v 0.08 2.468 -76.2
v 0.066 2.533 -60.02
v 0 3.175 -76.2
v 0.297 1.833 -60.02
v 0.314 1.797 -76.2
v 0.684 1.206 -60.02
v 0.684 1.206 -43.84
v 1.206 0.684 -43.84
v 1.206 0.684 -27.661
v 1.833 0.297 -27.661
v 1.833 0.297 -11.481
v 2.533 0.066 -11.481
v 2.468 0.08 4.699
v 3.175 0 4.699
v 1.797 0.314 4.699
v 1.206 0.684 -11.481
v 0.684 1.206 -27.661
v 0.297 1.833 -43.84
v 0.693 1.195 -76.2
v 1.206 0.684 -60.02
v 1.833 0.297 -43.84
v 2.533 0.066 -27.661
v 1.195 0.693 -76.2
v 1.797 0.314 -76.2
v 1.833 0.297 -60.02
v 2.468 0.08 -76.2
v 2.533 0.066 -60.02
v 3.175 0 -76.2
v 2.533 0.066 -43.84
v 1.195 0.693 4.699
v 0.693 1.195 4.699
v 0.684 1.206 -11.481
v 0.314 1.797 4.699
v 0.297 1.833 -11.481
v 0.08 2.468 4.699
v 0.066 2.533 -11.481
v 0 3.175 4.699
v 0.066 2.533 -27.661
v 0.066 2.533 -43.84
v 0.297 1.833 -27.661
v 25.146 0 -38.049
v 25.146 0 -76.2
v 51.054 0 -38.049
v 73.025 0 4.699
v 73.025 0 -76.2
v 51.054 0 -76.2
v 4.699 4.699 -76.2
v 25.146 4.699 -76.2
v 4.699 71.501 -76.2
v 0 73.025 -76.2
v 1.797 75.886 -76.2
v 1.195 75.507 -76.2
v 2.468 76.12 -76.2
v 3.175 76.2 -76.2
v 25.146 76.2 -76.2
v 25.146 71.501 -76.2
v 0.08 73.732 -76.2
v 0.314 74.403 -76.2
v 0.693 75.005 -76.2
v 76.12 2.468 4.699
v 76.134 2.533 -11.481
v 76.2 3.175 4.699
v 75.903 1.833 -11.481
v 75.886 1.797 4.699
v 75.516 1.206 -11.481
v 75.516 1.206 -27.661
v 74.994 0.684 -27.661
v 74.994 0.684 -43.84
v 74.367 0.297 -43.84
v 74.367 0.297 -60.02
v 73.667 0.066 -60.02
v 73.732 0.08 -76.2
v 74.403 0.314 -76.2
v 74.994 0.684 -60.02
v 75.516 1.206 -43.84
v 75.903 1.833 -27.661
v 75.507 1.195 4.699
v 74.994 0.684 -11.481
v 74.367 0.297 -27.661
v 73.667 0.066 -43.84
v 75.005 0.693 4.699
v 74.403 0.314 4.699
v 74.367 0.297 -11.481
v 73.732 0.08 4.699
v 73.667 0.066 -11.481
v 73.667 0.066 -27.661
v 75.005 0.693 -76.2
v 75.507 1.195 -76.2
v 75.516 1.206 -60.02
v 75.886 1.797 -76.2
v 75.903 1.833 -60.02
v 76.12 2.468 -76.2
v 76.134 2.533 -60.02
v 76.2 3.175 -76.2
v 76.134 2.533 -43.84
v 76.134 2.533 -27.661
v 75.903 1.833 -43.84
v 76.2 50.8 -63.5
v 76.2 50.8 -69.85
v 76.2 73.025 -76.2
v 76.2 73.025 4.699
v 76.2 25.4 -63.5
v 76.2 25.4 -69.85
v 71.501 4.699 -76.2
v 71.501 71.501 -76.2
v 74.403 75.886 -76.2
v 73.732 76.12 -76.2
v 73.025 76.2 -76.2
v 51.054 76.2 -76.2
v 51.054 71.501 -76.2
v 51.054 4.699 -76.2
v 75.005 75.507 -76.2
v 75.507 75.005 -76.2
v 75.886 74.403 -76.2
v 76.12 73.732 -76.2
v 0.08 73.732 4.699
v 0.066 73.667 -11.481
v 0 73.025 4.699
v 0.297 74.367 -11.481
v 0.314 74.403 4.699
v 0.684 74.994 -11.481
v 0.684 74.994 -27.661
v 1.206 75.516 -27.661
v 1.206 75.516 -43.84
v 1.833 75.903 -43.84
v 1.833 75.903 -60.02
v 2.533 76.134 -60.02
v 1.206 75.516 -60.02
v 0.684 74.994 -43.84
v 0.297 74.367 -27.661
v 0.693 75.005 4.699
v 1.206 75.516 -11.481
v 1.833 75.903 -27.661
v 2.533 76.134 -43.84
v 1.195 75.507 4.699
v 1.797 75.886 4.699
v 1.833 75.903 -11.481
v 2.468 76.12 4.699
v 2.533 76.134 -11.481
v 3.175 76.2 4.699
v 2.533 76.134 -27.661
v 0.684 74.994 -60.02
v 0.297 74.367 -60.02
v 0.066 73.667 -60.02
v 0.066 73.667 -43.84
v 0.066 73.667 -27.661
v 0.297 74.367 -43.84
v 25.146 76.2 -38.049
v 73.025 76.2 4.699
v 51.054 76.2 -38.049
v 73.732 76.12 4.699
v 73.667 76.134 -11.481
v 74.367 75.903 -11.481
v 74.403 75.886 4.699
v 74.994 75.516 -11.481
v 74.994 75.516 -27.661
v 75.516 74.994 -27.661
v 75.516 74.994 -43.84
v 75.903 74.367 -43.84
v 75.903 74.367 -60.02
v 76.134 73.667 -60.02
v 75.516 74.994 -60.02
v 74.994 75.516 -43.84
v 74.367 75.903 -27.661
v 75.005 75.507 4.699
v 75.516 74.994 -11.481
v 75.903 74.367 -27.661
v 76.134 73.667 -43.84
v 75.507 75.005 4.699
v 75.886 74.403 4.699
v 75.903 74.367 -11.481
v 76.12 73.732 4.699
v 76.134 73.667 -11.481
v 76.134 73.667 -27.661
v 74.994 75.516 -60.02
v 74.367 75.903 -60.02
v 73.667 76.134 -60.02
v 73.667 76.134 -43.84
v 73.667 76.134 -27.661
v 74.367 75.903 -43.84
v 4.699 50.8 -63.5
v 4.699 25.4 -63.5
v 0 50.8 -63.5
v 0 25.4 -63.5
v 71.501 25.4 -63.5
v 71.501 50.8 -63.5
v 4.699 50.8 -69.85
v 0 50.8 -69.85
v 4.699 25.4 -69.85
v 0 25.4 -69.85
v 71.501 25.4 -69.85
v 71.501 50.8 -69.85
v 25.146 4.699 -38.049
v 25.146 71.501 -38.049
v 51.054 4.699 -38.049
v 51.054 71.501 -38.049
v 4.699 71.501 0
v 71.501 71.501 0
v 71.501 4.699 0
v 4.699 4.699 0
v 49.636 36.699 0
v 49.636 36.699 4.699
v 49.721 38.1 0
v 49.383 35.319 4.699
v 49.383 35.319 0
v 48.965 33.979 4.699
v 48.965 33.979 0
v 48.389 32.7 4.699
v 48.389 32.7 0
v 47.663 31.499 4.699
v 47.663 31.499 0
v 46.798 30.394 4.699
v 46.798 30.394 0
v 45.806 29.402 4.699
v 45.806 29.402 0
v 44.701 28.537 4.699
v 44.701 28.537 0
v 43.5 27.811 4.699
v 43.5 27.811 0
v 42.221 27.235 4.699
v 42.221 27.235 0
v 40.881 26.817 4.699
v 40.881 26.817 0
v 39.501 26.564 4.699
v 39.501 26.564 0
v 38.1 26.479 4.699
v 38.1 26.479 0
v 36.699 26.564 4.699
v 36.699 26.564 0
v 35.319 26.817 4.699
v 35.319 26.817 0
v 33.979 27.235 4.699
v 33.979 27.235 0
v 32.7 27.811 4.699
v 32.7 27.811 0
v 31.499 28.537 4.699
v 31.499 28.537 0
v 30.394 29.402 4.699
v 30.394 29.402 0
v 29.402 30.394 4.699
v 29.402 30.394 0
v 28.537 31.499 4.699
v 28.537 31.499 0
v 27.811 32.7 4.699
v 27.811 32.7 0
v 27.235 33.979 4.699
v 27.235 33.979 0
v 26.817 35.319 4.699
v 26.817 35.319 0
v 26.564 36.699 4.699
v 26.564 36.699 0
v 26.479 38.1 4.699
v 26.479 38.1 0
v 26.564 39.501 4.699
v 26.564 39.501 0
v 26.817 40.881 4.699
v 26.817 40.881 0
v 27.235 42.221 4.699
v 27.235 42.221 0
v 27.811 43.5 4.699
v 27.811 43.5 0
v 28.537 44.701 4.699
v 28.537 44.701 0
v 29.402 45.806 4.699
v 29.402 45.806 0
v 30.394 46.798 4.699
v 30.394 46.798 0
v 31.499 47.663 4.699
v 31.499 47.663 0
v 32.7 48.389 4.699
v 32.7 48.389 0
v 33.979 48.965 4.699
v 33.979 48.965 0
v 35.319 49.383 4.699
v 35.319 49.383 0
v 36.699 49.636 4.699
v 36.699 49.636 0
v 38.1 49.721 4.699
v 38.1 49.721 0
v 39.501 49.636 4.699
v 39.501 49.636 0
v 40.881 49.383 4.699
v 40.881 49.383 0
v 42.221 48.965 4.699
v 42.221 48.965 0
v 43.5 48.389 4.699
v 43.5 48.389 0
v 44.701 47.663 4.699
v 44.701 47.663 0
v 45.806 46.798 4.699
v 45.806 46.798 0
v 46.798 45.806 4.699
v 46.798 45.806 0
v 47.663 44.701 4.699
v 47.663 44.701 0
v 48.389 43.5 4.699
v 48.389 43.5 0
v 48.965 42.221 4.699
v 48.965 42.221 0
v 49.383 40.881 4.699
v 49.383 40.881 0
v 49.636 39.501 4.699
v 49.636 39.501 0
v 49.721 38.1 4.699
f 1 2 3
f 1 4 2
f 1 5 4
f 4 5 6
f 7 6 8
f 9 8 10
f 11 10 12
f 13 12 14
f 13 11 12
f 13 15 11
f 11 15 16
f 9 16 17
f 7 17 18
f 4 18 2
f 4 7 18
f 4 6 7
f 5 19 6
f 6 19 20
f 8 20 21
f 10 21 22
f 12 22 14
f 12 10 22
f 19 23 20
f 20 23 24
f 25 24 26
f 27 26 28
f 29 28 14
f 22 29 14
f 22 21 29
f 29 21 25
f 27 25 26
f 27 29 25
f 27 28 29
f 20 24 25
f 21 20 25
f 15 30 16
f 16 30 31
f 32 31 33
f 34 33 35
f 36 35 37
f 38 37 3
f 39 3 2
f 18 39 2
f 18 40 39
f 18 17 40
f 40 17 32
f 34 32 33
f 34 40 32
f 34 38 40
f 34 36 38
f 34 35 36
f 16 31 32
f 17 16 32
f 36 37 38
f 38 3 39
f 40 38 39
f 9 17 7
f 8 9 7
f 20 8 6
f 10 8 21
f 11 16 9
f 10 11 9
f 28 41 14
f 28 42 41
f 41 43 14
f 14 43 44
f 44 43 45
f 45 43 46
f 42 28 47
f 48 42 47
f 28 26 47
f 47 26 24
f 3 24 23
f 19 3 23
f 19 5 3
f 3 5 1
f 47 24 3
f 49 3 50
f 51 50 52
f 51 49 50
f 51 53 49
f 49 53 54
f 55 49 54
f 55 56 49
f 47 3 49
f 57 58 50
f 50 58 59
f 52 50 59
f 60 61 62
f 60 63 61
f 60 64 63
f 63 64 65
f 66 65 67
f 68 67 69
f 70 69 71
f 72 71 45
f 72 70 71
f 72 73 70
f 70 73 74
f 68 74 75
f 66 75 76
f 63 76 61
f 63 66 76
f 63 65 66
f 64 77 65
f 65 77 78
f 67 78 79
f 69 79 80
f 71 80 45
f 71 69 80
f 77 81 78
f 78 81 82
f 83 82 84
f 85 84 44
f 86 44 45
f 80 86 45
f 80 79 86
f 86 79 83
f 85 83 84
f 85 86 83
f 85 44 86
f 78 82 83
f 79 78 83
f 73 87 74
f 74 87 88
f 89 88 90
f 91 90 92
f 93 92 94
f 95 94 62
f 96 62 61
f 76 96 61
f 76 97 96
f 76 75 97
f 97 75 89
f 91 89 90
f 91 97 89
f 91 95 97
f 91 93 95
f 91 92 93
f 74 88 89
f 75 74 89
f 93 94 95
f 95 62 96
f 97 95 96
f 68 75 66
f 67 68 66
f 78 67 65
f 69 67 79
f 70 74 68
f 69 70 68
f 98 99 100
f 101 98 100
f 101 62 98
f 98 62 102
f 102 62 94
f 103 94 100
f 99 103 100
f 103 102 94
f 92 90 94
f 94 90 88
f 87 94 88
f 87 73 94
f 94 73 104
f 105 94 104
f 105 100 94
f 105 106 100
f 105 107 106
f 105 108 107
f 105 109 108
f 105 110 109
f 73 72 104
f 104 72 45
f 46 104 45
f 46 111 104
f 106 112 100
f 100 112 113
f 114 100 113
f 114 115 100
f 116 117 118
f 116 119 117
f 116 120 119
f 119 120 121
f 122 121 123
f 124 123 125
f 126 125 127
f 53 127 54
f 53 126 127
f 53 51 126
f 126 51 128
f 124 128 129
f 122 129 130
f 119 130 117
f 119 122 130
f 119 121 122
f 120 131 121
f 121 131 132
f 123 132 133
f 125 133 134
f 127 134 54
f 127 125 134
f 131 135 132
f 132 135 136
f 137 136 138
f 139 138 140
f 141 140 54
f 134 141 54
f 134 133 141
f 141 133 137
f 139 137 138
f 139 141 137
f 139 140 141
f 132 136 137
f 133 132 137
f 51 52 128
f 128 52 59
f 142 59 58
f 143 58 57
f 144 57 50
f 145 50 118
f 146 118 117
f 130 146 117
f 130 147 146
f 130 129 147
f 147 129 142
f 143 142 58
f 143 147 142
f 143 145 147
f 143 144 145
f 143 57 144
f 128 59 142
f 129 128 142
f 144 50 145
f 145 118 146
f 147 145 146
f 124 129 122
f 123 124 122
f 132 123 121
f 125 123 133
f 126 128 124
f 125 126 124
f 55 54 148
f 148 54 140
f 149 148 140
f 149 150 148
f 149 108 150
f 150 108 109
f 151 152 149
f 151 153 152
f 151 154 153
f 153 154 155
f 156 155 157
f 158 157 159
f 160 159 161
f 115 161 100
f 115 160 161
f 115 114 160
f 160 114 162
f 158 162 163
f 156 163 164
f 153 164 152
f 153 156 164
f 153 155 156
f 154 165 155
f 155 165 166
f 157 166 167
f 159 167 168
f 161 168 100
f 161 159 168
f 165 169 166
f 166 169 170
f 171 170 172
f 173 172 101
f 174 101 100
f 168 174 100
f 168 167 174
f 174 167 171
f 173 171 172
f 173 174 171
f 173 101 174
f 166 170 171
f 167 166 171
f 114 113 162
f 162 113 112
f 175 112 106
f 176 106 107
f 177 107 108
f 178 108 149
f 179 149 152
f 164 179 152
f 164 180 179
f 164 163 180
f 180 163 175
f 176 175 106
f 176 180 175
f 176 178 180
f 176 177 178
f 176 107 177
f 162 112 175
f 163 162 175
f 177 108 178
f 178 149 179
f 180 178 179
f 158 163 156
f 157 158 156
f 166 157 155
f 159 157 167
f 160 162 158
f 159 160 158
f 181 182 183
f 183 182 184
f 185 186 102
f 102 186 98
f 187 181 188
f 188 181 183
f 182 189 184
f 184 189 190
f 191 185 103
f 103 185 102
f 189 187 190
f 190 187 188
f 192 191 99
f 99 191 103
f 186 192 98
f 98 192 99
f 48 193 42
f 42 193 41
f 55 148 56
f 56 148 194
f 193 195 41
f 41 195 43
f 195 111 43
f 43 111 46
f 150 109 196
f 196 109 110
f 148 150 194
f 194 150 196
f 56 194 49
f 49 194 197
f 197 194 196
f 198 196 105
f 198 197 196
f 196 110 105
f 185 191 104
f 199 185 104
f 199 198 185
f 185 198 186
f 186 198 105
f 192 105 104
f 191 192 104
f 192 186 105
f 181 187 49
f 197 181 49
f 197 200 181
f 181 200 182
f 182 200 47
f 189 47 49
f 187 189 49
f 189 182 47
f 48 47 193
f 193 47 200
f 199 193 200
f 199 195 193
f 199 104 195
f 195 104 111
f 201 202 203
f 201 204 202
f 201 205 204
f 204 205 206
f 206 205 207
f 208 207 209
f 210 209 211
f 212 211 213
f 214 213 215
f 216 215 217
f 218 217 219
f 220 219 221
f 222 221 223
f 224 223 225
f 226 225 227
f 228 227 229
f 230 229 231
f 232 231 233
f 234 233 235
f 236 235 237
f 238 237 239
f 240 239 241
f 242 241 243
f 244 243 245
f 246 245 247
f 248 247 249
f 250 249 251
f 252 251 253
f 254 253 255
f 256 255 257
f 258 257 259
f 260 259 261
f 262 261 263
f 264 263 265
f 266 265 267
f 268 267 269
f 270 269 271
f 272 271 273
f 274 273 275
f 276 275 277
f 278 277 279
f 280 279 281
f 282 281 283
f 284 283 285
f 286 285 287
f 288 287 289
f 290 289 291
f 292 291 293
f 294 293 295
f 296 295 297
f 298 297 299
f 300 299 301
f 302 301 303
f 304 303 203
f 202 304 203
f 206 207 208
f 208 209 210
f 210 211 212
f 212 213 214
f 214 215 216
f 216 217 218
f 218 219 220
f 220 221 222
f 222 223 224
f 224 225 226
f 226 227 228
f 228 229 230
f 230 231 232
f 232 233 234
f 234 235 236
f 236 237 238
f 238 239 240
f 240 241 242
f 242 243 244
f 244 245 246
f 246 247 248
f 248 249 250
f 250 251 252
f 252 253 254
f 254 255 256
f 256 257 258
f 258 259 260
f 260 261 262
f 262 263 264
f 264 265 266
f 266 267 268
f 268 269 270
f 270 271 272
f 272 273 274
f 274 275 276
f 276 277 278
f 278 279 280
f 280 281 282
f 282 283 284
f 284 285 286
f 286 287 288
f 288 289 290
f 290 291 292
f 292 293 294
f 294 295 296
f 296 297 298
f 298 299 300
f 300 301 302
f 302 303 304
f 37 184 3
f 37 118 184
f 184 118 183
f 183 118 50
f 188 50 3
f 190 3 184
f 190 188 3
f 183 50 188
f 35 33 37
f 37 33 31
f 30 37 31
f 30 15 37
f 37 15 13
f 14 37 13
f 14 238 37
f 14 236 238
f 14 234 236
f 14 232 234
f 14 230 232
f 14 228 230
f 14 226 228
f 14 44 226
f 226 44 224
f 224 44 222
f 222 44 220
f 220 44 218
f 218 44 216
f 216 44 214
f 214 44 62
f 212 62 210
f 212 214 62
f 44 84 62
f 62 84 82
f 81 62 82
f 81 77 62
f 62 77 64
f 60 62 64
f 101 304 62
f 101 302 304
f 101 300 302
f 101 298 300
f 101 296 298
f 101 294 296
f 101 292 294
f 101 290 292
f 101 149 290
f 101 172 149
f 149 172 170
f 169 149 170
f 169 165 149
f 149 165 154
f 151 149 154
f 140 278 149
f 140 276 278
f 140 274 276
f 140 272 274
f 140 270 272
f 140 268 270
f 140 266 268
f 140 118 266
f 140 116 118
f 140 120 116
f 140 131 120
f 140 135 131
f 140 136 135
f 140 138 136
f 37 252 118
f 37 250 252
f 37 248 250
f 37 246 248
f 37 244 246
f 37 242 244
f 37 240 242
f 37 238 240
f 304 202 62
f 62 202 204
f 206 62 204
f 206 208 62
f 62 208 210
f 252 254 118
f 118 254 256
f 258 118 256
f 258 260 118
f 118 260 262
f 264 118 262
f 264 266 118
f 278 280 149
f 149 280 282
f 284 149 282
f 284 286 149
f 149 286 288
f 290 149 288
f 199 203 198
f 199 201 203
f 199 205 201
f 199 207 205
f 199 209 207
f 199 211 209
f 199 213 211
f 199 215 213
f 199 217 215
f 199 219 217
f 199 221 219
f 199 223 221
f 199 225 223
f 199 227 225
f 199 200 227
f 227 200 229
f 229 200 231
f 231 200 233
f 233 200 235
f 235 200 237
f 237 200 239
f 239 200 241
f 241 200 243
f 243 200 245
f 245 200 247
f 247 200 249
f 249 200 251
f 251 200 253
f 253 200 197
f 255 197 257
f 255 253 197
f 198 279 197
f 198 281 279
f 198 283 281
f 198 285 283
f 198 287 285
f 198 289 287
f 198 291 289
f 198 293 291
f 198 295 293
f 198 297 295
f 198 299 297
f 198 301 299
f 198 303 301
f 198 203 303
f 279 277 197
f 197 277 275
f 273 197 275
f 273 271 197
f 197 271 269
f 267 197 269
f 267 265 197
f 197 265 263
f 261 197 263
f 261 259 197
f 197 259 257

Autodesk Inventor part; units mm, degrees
ref_plane "YZ Plane" through (0, 0, 0) normal (1, 0, 0) x (0, 1, 0)
ref_plane "XZ Plane" through (0, 0, 0) normal (0, 1, 0) x (-1, 0, 0)
ref_plane "XY Plane" through (0, 0, 0) normal (0, 0, 1) x (1, 0, 0)
sketch "Sketch1" plane through (0, 0, 0) normal (0, 0, 1) x (1, 0, 0)
  line L0 (0, 0) -> (76.2, 0)
  line L1 (76.2, 0) -> (76.2, 76.2)
  line L2 (76.2, 76.2) -> (0, 76.2)
  line L3 (0, 76.2) -> (0, 0)
  dimension "d0" = 76.2
  dimension "d1" = 76.2
extrude "Extrusion1" add sketch "Sketch1" along normal blind 4.699
sketch "Sketch2" plane through (0, 0, 4.699) normal (0, 0, 1) x (1, 0, 0)
  point P0 (0, 0)
sketch "Sketch3" plane through (0, 0, 4.699) normal (0, 0, 1) x (1, 0, 0)
  circle A0 centre (38.1, 38.1) radius 11.6205
  line L0 (0, 76.2) -> (0, 0) projected
  line L1 (0, 0) -> (76.2, 0) projected
  point P0 (0, 73.025)
  point P1 (0, 3.175)
  point P2 (3.175, 0)
  point P3 (73.025, 0)
  dimension "d5" = 23.241
  dimension "d6" = 38.1
  dimension "d7" = 38.1
extrude "Extrusion2" cut sketch "Sketch3" against normal blind 4.699
sketch "Sketch5" plane through (0, 0, 0) normal (0, 0, -1) x (-1, 0, 0)
  line L0 (-4.699, 4.699) -> (-71.501, 4.699)
  line L1 (-71.501, 4.699) -> (-71.501, 71.501)
  line L2 (-71.501, 71.501) -> (-4.699, 71.501)
  line L3 (-4.699, 71.501) -> (-4.699, 4.699)
  line L4 (0, 0) -> (-76.2, 0) projected
  line L5 (0, 76.2) -> (0, 0) projected
  line L6 (-76.2, 76.2) -> (0, 76.2) projected
  line L7 (-76.2, 0) -> (-76.2, 76.2) projected
  line L8 (0, 76.2) -> (0, 0) projected
  line L9 (0, 0) -> (-76.2, 0)
  line L10 (-76.2, 0) -> (-76.2, 76.2)
  line L11 (-76.2, 76.2) -> (0, 76.2)
  line L12 (0, 76.2) -> (0, 0)
  dimension "d18" = 4.699
  dimension "d19" = 4.699
  dimension "d20" = 4.699
  dimension "d21" = 4.699
extrude "Extrusion4" add sketch "Sketch5" along normal blind 76.2
sketch "Sketch6" plane through (0, 0, 4.699) normal (0, -1, 0) x (1, 0, 0)
  line L0 (4.699, -80.899) -> (71.501, -80.899) projected
  line L1 (25.146, -80.899) -> (51.054, -80.899)
  line L2 (51.054, -80.899) -> (51.054, -42.7482)
  line L3 (51.054, -42.7482) -> (25.146, -42.7482)
  line L4 (25.146, -42.7482) -> (25.146, -80.899)
  line L5 (76.2, -80.899) -> (76.2, 0) projected
  line L6 (0, 0) -> (0, -80.899) projected
  point P0 (0, -4.699)
  dimension "d24" = 25.908
  dimension "d25" = 38.1508
  dimension "d26" = 25.146
  dimension "d27" = 25.146
extrude "Extrusion5" cut sketch "Sketch6" against normal through all
sketch "Sketch7" plane through (76.2, 0, 4.699) normal (1, 0, 0) x (0, 0, -1)
  line L0 (74.549, 25.4) -> (68.199, 25.4)
  line L1 (68.199, 25.4) -> (68.199, 50.8)
  line L2 (68.199, 50.8) -> (74.549, 50.8)
  line L3 (74.549, 50.8) -> (74.549, 25.4)
  line L4 (80.899, 76.2) -> (80.899, 0) projected
  line L5 (80.899, 76.2) -> (0, 76.2) projected
  line L6 (80.899, 0) -> (0, 0) projected
  point P0 (4.699, 0)
  dimension "d30" = 6.35
  dimension "d31" = 25.4
  dimension "d32" = 6.35
  dimension "d33" = 25.4
  dimension "d34" = 25.4
extrude "Extrusion6" cut sketch "Sketch7" against normal through all
fillet "Fillet2" radius 3.175 4 edges at (76.2, 76.2, -35.7505) (0, 76.2, -35.7505) (76.2, 0, -35.7505) (0, 0, -35.7505)
properties part number "buttonInchPipeMount"
